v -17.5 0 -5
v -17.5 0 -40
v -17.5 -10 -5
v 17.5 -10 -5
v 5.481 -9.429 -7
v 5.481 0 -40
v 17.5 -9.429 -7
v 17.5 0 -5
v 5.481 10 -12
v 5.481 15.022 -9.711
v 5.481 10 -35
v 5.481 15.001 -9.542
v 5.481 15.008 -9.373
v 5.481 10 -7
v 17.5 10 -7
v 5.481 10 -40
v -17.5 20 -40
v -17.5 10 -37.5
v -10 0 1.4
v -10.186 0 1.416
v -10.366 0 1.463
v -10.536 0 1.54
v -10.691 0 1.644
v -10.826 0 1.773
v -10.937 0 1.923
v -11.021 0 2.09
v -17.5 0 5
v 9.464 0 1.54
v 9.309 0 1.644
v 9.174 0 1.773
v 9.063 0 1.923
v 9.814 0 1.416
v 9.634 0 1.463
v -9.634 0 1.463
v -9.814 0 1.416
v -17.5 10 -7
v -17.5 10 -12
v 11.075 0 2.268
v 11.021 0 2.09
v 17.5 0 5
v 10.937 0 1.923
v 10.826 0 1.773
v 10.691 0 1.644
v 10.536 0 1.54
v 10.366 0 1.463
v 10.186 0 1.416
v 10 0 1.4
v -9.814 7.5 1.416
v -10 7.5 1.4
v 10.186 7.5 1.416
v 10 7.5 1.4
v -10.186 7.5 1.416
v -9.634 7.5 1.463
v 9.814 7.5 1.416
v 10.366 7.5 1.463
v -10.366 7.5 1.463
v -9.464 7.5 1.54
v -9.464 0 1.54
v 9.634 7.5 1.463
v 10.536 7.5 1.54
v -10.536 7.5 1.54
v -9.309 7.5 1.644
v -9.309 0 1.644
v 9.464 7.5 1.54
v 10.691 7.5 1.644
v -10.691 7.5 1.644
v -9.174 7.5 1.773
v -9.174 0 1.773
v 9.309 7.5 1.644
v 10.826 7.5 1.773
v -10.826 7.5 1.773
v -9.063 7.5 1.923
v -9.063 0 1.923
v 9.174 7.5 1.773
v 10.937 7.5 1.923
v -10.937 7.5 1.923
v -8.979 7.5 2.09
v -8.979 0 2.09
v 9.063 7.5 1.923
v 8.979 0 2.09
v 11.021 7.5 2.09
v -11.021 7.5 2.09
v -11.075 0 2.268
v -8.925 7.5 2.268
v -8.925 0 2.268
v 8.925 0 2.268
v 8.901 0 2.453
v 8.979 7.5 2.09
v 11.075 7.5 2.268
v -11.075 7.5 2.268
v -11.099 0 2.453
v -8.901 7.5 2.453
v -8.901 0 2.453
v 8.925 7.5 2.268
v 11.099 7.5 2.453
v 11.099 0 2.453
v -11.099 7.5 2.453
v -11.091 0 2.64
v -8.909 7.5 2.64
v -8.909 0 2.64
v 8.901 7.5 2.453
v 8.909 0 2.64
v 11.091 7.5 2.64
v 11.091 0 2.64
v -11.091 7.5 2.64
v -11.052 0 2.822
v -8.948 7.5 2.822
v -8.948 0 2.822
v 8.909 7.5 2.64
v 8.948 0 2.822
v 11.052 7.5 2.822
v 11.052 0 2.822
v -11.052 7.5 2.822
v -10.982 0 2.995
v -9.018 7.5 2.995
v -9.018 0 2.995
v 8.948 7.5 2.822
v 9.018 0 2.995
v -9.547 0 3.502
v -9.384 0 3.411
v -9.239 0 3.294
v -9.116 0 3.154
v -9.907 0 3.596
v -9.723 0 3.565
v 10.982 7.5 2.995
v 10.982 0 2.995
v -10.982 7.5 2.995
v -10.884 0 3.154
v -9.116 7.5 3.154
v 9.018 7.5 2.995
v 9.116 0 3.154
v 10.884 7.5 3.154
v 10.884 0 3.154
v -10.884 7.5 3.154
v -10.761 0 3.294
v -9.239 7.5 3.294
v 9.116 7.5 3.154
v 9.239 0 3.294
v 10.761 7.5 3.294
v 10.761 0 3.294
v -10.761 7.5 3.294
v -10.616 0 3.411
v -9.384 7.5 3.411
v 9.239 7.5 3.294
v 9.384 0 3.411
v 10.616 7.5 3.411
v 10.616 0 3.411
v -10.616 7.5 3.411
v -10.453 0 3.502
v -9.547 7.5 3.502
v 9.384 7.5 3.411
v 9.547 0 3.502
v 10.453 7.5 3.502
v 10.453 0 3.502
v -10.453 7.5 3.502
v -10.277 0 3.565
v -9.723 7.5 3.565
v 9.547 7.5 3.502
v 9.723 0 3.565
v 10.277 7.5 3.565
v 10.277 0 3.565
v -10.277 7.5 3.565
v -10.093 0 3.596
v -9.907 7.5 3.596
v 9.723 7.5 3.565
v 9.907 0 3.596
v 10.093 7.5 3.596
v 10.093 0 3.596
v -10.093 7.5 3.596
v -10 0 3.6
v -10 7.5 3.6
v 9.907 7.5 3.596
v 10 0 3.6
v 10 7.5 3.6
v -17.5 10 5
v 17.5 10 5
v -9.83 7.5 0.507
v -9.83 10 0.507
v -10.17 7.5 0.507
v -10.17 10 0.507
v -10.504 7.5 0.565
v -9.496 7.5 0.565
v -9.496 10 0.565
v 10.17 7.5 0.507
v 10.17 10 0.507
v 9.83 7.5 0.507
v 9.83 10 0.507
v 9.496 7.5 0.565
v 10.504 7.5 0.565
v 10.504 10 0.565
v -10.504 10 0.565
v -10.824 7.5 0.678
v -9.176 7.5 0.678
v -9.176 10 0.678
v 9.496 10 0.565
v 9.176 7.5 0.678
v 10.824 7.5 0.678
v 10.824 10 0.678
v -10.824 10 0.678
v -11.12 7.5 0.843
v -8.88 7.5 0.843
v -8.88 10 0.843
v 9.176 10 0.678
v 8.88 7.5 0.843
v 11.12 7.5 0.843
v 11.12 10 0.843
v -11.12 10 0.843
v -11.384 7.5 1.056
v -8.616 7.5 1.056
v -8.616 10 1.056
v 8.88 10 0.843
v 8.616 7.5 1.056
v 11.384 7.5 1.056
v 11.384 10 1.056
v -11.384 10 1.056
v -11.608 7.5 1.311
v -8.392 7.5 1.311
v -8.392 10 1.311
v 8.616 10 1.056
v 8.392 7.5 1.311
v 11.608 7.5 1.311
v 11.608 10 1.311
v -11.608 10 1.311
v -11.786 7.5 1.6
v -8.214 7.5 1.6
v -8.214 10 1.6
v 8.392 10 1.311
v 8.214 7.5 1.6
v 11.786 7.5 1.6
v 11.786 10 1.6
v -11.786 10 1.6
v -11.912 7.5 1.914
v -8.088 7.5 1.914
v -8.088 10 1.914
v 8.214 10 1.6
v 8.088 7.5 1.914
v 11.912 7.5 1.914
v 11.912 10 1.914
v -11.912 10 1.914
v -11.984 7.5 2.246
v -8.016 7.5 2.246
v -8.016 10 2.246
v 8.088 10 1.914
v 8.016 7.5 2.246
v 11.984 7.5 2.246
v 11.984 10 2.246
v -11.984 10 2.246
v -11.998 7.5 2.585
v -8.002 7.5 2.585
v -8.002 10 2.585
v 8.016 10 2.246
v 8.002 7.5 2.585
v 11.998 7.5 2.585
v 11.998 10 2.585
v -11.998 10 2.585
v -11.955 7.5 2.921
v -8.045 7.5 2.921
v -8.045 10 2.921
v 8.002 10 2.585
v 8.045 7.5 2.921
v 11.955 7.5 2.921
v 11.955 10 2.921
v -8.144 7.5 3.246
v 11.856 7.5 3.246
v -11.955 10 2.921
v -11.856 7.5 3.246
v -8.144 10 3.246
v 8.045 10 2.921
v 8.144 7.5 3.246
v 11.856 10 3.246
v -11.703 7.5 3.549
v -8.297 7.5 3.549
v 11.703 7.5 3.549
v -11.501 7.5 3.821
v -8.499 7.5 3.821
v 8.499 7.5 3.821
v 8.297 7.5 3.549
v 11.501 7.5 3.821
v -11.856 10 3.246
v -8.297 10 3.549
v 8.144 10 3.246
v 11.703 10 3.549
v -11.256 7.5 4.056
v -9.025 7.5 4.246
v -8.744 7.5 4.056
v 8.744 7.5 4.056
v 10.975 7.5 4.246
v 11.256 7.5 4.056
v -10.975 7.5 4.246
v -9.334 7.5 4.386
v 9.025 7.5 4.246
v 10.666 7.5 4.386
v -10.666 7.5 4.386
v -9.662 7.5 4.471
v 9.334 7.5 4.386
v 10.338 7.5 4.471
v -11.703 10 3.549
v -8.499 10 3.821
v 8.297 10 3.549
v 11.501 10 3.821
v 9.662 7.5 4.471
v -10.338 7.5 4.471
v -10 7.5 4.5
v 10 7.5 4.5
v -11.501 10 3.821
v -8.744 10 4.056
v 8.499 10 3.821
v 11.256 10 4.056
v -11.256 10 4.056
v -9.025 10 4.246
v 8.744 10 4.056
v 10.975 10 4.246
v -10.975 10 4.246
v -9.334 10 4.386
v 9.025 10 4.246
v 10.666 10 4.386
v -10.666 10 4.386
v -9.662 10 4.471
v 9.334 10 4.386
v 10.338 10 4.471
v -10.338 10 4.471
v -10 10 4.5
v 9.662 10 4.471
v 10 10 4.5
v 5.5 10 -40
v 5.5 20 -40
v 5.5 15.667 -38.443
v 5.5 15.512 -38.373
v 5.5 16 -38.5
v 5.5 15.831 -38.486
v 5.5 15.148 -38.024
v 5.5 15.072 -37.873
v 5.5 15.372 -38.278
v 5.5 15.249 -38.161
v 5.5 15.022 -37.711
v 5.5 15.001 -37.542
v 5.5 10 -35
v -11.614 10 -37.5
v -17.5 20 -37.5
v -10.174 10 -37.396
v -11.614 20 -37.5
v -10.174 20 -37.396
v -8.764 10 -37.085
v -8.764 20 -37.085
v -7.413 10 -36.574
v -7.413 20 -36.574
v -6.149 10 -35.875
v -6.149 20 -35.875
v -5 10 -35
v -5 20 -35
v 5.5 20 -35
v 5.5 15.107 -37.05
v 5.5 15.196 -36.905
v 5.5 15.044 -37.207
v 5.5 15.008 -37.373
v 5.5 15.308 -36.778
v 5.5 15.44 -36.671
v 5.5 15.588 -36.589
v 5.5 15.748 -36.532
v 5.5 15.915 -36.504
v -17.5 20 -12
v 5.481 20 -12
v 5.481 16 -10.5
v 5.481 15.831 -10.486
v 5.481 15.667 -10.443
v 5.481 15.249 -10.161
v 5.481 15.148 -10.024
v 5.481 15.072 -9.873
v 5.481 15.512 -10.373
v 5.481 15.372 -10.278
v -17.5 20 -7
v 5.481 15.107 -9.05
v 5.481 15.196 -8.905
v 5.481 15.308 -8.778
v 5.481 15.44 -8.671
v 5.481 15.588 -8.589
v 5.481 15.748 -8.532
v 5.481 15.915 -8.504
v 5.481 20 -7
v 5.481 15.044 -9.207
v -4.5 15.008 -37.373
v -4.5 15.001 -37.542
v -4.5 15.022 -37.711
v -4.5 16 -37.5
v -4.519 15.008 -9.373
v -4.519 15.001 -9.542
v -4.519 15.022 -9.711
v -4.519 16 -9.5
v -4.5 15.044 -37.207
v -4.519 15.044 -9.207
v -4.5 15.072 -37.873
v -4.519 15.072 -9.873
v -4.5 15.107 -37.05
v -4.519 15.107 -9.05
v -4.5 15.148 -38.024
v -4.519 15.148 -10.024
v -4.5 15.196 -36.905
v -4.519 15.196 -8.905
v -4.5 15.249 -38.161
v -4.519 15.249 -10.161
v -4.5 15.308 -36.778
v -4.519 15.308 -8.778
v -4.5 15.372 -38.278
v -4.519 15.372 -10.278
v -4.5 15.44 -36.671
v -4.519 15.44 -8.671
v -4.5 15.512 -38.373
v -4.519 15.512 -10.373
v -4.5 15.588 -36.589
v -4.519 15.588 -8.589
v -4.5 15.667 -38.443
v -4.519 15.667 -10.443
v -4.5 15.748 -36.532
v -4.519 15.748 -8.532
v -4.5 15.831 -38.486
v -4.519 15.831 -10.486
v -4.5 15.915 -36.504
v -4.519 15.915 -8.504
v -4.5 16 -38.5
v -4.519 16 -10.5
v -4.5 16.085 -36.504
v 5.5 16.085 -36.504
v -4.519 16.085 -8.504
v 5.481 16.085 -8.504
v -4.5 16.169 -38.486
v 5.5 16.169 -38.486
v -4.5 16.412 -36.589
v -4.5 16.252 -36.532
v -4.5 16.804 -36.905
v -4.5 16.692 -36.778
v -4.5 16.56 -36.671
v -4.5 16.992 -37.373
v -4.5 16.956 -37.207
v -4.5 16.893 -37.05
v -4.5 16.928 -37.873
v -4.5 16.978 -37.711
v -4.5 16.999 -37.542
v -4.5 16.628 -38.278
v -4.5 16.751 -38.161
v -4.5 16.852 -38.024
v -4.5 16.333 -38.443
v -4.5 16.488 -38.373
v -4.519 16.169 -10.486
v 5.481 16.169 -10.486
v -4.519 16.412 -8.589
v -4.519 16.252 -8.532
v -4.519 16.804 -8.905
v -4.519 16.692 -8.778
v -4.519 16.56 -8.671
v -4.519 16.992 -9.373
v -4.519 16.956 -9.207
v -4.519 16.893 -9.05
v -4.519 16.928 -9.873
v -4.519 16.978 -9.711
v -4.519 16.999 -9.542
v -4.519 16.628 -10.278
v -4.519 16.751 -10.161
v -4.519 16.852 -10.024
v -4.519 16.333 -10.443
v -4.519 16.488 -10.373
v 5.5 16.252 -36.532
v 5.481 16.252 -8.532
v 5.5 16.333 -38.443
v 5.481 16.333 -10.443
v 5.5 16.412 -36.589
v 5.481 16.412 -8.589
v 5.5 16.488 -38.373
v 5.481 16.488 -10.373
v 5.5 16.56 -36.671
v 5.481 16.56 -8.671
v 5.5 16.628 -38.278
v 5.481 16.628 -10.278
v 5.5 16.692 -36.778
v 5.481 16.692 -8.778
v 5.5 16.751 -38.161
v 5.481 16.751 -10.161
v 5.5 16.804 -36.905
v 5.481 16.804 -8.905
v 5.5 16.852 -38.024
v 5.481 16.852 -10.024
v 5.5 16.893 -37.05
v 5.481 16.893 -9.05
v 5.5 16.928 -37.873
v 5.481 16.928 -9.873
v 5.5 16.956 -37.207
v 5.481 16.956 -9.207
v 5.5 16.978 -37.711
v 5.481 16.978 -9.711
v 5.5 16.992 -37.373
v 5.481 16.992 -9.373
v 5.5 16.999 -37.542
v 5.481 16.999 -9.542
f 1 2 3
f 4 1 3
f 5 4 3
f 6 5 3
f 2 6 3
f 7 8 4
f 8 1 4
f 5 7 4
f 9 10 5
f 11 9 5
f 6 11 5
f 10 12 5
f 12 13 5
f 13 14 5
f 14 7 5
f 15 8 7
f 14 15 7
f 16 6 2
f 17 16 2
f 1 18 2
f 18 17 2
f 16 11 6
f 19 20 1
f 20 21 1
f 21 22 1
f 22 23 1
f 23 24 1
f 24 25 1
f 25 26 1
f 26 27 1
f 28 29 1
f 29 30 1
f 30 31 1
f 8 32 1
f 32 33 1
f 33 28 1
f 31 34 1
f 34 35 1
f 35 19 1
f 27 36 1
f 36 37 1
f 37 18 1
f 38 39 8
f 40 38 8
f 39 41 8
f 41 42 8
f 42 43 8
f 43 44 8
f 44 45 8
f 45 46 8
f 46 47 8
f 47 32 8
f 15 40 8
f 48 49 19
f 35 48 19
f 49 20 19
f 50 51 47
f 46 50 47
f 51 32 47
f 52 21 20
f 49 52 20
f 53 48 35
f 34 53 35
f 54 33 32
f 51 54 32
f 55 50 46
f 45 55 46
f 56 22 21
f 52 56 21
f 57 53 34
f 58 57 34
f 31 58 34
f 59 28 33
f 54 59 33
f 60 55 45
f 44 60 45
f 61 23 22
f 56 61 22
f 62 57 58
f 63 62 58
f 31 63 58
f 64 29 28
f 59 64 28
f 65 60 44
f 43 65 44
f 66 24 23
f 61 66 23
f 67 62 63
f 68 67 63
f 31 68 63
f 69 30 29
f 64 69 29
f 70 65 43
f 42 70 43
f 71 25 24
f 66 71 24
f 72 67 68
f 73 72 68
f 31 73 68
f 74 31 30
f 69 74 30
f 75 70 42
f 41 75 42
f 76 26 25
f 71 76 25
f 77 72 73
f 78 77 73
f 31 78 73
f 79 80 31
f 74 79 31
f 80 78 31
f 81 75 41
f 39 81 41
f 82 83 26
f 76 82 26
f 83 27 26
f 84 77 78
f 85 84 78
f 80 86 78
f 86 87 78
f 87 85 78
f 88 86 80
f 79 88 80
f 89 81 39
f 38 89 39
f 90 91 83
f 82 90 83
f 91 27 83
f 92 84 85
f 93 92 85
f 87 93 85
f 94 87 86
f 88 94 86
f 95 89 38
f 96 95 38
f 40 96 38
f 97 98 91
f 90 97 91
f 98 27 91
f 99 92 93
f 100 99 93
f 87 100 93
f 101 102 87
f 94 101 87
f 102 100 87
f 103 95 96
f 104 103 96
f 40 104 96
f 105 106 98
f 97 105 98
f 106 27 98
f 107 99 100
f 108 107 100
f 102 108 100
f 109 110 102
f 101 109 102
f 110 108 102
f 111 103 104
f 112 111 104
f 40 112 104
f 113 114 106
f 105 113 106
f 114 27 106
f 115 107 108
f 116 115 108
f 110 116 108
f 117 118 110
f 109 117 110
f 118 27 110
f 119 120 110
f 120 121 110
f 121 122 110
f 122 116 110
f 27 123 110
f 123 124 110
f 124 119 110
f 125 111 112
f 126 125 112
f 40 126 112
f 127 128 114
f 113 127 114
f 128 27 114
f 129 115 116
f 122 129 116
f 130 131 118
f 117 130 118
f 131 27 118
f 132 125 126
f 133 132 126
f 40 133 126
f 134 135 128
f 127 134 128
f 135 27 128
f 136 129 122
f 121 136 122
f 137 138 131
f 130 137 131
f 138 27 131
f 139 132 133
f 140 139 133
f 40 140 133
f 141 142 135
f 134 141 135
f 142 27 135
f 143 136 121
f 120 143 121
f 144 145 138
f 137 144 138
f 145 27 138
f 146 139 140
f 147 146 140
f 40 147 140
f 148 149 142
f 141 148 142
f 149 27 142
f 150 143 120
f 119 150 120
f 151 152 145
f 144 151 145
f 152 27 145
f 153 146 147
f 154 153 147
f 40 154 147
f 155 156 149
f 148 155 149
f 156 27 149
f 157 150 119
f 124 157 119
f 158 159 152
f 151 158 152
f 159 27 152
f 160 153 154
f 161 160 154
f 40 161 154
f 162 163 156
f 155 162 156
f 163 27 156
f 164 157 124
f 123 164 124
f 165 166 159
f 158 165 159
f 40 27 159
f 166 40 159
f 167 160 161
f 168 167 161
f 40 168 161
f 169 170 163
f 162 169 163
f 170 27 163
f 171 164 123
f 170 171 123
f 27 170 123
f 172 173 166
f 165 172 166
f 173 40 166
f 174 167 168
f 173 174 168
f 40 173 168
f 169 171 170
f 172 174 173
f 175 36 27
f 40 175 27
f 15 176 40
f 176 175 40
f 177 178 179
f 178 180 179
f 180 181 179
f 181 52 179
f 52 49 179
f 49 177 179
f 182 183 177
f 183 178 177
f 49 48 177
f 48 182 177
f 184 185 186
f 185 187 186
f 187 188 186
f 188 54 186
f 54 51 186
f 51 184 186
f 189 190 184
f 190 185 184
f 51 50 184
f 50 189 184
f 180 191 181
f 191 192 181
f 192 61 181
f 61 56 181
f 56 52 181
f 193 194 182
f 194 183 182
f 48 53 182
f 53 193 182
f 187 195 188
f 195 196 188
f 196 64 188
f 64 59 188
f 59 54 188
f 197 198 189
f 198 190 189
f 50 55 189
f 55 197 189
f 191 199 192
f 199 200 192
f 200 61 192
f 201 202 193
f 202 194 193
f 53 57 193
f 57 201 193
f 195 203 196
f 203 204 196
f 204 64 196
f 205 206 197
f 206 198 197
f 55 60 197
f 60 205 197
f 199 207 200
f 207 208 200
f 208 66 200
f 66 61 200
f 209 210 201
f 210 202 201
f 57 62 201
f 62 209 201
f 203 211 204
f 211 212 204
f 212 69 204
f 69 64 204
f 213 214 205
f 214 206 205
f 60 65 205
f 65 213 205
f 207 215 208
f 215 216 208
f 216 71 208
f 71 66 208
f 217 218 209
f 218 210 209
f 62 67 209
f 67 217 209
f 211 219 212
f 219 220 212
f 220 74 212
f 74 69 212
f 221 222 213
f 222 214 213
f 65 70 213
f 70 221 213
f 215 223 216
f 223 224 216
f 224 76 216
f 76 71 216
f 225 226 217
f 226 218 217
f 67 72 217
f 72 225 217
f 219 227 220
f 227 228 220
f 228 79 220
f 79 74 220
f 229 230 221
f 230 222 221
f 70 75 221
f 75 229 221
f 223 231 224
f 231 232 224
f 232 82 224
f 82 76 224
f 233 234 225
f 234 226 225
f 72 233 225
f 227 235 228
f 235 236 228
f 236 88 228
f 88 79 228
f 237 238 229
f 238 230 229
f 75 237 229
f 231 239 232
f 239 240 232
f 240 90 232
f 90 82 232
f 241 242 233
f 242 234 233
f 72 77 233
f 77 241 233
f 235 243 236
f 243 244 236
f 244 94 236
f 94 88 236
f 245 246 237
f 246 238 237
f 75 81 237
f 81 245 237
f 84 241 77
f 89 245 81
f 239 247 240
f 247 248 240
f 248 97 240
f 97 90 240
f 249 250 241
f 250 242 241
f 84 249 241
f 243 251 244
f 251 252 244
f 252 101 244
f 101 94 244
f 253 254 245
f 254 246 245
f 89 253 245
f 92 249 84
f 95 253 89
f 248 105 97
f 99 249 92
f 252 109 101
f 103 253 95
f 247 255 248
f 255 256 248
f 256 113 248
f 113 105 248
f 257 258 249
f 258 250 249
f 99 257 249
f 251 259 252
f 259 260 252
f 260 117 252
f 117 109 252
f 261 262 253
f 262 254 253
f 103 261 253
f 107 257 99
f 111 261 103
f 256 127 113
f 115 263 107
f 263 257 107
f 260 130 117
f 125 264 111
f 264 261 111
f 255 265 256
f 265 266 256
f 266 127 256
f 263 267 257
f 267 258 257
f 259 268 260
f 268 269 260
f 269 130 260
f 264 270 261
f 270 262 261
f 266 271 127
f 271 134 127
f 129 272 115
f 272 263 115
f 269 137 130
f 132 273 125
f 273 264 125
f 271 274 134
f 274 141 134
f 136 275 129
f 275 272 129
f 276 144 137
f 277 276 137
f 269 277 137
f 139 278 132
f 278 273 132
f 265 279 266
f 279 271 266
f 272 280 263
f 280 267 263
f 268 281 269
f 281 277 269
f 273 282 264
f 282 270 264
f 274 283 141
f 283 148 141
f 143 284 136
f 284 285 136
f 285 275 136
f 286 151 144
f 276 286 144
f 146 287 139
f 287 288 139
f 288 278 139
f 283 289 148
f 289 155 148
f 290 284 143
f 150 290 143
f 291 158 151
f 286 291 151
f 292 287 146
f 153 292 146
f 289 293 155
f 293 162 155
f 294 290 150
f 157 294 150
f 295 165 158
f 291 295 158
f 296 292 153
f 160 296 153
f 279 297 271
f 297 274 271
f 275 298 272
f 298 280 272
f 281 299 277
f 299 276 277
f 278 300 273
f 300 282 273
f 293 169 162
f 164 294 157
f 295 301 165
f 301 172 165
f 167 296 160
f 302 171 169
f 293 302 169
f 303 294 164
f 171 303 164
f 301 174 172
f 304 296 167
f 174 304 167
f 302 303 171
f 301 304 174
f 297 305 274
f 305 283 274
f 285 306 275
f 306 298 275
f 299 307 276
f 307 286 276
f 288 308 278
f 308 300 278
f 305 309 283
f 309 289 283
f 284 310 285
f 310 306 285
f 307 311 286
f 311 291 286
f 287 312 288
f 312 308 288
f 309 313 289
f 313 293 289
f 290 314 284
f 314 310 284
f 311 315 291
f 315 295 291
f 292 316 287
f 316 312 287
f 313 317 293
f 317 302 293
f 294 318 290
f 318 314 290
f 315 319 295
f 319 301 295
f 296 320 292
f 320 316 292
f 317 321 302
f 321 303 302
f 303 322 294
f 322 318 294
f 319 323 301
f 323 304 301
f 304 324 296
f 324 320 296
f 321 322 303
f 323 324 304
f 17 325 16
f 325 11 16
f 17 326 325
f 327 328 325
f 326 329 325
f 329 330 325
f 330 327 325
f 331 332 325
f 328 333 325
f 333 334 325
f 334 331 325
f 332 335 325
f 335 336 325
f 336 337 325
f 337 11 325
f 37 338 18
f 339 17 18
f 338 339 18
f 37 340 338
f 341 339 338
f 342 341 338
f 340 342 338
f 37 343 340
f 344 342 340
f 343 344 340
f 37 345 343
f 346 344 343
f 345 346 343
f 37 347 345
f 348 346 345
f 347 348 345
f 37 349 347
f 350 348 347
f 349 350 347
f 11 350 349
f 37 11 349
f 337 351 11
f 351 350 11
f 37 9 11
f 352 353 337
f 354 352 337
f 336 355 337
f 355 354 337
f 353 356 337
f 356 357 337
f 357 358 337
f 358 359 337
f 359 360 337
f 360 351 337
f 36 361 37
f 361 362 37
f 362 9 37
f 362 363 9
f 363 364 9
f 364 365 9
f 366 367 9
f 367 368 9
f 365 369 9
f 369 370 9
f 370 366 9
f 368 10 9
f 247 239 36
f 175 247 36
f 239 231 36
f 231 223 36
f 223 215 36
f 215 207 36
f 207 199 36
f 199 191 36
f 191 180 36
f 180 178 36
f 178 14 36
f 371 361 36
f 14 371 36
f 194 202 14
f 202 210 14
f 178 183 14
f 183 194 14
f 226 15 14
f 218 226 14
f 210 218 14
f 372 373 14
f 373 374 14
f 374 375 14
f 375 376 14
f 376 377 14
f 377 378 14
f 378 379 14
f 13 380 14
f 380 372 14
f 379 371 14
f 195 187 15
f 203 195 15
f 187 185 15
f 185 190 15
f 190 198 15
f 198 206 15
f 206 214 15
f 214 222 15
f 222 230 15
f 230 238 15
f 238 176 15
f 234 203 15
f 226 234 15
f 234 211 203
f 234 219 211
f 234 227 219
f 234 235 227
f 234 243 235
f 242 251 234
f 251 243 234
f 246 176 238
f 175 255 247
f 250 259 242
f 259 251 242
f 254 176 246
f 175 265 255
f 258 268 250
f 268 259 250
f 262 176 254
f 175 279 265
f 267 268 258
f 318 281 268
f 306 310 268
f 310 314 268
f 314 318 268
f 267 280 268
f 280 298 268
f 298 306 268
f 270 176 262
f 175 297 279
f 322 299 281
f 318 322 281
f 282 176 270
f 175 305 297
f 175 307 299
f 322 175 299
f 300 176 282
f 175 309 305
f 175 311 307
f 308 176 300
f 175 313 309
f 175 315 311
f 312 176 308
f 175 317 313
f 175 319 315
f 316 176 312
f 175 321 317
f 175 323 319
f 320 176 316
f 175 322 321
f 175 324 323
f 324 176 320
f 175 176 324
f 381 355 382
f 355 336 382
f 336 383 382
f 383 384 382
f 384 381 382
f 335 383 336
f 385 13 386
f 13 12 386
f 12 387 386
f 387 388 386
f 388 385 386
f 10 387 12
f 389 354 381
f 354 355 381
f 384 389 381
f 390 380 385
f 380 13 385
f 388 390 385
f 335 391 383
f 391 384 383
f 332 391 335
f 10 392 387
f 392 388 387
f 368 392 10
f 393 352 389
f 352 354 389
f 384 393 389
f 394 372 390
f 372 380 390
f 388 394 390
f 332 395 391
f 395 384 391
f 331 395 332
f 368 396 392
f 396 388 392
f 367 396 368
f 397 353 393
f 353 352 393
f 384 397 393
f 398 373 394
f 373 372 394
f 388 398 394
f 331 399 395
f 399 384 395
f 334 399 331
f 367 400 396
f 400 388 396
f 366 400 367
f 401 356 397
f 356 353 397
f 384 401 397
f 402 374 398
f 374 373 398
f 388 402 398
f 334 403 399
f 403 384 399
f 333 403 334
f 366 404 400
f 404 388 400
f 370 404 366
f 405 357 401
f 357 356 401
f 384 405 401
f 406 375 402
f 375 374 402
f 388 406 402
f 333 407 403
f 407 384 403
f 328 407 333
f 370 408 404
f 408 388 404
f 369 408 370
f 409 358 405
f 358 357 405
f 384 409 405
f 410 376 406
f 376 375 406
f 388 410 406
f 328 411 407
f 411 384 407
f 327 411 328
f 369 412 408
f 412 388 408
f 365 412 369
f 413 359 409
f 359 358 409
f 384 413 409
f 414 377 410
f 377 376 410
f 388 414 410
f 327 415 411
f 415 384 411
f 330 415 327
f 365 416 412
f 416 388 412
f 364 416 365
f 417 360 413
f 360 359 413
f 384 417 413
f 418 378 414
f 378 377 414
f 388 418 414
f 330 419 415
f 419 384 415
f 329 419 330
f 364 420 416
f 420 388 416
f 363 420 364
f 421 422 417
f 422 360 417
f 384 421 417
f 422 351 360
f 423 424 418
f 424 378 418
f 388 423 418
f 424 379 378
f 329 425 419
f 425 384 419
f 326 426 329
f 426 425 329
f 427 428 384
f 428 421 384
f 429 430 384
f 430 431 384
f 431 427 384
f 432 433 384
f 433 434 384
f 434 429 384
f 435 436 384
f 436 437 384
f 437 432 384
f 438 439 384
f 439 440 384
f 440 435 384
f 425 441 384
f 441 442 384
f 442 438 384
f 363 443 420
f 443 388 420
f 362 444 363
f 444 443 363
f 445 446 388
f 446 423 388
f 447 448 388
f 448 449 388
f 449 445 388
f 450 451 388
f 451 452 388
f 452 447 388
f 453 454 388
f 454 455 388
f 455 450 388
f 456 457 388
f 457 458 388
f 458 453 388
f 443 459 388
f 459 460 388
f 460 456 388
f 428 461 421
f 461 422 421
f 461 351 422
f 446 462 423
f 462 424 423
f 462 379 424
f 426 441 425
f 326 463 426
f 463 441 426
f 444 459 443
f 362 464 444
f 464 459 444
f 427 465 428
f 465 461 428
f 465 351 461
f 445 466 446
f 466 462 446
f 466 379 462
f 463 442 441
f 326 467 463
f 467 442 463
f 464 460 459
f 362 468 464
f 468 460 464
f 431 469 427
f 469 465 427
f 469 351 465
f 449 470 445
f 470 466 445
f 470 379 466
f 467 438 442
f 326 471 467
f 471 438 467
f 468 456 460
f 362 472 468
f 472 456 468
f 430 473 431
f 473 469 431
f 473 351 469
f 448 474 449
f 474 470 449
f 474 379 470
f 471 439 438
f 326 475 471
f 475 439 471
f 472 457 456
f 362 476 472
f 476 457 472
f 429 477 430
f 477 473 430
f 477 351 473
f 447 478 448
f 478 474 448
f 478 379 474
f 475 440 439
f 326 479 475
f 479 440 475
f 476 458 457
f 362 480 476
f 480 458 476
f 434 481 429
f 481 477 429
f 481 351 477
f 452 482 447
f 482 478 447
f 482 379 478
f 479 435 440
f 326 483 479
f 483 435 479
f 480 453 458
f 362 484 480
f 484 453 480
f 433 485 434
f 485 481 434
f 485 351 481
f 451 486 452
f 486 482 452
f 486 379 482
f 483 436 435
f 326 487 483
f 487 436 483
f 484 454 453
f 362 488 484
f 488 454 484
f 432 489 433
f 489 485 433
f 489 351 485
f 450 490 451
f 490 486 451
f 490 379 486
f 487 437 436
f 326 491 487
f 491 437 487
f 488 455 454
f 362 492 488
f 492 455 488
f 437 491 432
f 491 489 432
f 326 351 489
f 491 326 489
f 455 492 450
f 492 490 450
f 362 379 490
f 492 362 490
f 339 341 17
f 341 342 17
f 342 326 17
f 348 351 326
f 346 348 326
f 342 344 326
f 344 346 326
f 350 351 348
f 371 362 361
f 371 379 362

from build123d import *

# Parameters (mm, degrees)
SKETCH1_W           = 35
SKETCH1_H           = 45
SKETCH1_R           = 1.1
BOSS_EXTRUDE1_DEPTH = 10
SKETCH5_W           = 35
SKETCH5_H           = 35
BOSS_EXTRUDE3_DEPTH = 10
CUT_EXTRUDE1_DEPTH  = 50
SKETCH7_W           = 23
SKETCH7_H           = 5
BOSS_EXTRUDE4_DEPTH = 10
SKETCH8_W           = 22.981157626
SKETCH8_H           = 5
BOSS_EXTRUDE5_DEPTH = 10
SKETCH9_W           = 12.018842374
SKETCH9_H           = 33
CUT_EXTRUDE2_DEPTH  = 40
SKETCH10_R          = 1
CUT_EXTRUDE3_DEPTH  = 10
SKETCH11_R          = 1
CUT_EXTRUDE4_DEPTH  = 10
SKETCH13_W          = 2.5
SKETCH13_H          = 10
CUT_EXTRUDE6_DEPTH  = 12.5
FILLET1_R           = 10
SKETCH14_R          = 2
CUT_EXTRUDE7_DEPTH  = 2.5


with BuildPart() as part:
    # Sketch1 → Boss-Extrude1 (new body)
    with BuildSketch(Plane(origin=(0, 0, 0), x_dir=(1, 0, 0), z_dir=(0, 1, 0))):
        with Locations((0, 17.5)):
            Rectangle(SKETCH1_W, SKETCH1_H)
        with Locations(Location((-10, -2.5, 0), (0, 0, 270))):
            Circle(SKETCH1_R, mode=Mode.SUBTRACT)
        with Locations(Location((10, -2.5, 0), (0, 0, 270))):
            Circle(SKETCH1_R, mode=Mode.SUBTRACT)
    extrude(amount=BOSS_EXTRUDE1_DEPTH)

    # Sketch5 → Boss-Extrude3 (add)
    with BuildSketch(Plane.XZ):
        with Locations((0, -22.5)):
            Rectangle(SKETCH5_W, SKETCH5_H)
    extrude(amount=BOSS_EXTRUDE3_DEPTH)

    # Sketch6 → Cut-Extrude1 (cut)
    with BuildSketch(Plane(origin=(17.5, 0, 0), x_dir=(0, 0, -1), z_dir=(1, 0, 0))):
        Polygon((5, -10), (40, 0), (40, -10), align=None)
    extrude(amount=-CUT_EXTRUDE1_DEPTH, mode=Mode.SUBTRACT)

    # Sketch7 → Boss-Extrude4 (add)
    with BuildSketch(Plane(origin=(0, 10, 0), x_dir=(1, 0, 0), z_dir=(0, 1, 0))):
        with Locations((-6, 37.5)):
            Rectangle(SKETCH7_W, SKETCH7_H)
    extrude(amount=BOSS_EXTRUDE4_DEPTH)

    # Sketch8 → Boss-Extrude5 (add)
    with BuildSketch(Plane(origin=(0, 10, 0), x_dir=(1, 0, 0), z_dir=(0, 1, 0))):
        with Locations((-6.009421187, 9.5)):
            Rectangle(SKETCH8_W, SKETCH8_H)
    extrude(amount=BOSS_EXTRUDE5_DEPTH)

    # Sketch9 → Cut-Extrude2 (cut)
    with BuildSketch(Plane(origin=(0, 10, 0), x_dir=(1, 0, 0), z_dir=(0, 1, 0))):
        with Locations((11.490578813, 23.5)):
            Rectangle(SKETCH9_W, SKETCH9_H)
    extrude(amount=-CUT_EXTRUDE2_DEPTH, mode=Mode.SUBTRACT)

    # Sketch10 → Cut-Extrude3 (cut)
    with BuildSketch(Plane(origin=(5.481157626, 0, 0), x_dir=(0, 0, -1), z_dir=(1, 0, 0))):
        with Locations((9.5, 16)):
            Circle(SKETCH10_R)
    extrude(amount=-CUT_EXTRUDE3_DEPTH, mode=Mode.SUBTRACT)

    # Sketch11 → Cut-Extrude4 (cut)
    with BuildSketch(Plane(origin=(5.5, 0, 0), x_dir=(0, 0, -1), z_dir=(1, 0, 0))):
        with Locations((37.5, 16)):
            Circle(SKETCH11_R)
    extrude(amount=-CUT_EXTRUDE4_DEPTH, mode=Mode.SUBTRACT)

    # Sketch13 → Cut-Extrude6 (cut)
    with BuildSketch(Plane.ZY.offset(17.5)):
        with Locations((-36.25, 15)):
            Rectangle(SKETCH13_W, SKETCH13_H)
    extrude(amount=-CUT_EXTRUDE6_DEPTH, mode=Mode.SUBTRACT)

    # Fillet1
    # the kernel refuses this fillet: 10 mm, written as the material it adds along each edge
    with BuildSketch(Plane(origin=(-5, -6.535945694, -37.5), x_dir=(-1, 0, 0), z_dir=(0, 1, 0))) as fillet1_piece_1_section:
        with BuildLine():
            CenterArc((6.614378278, 10), FILLET1_R, 228.590377891, 41.409622109)
            Line((0, 2.5), (0, 0))
            Line((0, 0), (6.614378278, 0))
        make_face()
    fillet1_piece_1 = extrude(amount=26.535945694, mode=Mode.PRIVATE)
    fillet1_piece_1 = split(fillet1_piece_1, bisect_by=Plane(origin=(-8.071773304, 0.306036312, -41.071127093), z_dir=(0, 0.9615239476408232, 0.27472112789737807)), keep=Keep.TOP, mode=Mode.PRIVATE)
    add(fillet1_piece_1)

    # Sketch14 → Cut-Extrude7 (cut)
    with BuildSketch(Plane(origin=(0, 10, 0), x_dir=(1, 0, 0), z_dir=(0, 1, 0))):
        with Locations(Location((10, -2.5, 0), (0, 0, 270))):
            Circle(SKETCH14_R)
        with Locations(Location((-10, -2.5, 0), (0, 0, 270))):
            Circle(SKETCH14_R)
    extrude(amount=-CUT_EXTRUDE7_DEPTH, mode=Mode.SUBTRACT)


solid = part.part
